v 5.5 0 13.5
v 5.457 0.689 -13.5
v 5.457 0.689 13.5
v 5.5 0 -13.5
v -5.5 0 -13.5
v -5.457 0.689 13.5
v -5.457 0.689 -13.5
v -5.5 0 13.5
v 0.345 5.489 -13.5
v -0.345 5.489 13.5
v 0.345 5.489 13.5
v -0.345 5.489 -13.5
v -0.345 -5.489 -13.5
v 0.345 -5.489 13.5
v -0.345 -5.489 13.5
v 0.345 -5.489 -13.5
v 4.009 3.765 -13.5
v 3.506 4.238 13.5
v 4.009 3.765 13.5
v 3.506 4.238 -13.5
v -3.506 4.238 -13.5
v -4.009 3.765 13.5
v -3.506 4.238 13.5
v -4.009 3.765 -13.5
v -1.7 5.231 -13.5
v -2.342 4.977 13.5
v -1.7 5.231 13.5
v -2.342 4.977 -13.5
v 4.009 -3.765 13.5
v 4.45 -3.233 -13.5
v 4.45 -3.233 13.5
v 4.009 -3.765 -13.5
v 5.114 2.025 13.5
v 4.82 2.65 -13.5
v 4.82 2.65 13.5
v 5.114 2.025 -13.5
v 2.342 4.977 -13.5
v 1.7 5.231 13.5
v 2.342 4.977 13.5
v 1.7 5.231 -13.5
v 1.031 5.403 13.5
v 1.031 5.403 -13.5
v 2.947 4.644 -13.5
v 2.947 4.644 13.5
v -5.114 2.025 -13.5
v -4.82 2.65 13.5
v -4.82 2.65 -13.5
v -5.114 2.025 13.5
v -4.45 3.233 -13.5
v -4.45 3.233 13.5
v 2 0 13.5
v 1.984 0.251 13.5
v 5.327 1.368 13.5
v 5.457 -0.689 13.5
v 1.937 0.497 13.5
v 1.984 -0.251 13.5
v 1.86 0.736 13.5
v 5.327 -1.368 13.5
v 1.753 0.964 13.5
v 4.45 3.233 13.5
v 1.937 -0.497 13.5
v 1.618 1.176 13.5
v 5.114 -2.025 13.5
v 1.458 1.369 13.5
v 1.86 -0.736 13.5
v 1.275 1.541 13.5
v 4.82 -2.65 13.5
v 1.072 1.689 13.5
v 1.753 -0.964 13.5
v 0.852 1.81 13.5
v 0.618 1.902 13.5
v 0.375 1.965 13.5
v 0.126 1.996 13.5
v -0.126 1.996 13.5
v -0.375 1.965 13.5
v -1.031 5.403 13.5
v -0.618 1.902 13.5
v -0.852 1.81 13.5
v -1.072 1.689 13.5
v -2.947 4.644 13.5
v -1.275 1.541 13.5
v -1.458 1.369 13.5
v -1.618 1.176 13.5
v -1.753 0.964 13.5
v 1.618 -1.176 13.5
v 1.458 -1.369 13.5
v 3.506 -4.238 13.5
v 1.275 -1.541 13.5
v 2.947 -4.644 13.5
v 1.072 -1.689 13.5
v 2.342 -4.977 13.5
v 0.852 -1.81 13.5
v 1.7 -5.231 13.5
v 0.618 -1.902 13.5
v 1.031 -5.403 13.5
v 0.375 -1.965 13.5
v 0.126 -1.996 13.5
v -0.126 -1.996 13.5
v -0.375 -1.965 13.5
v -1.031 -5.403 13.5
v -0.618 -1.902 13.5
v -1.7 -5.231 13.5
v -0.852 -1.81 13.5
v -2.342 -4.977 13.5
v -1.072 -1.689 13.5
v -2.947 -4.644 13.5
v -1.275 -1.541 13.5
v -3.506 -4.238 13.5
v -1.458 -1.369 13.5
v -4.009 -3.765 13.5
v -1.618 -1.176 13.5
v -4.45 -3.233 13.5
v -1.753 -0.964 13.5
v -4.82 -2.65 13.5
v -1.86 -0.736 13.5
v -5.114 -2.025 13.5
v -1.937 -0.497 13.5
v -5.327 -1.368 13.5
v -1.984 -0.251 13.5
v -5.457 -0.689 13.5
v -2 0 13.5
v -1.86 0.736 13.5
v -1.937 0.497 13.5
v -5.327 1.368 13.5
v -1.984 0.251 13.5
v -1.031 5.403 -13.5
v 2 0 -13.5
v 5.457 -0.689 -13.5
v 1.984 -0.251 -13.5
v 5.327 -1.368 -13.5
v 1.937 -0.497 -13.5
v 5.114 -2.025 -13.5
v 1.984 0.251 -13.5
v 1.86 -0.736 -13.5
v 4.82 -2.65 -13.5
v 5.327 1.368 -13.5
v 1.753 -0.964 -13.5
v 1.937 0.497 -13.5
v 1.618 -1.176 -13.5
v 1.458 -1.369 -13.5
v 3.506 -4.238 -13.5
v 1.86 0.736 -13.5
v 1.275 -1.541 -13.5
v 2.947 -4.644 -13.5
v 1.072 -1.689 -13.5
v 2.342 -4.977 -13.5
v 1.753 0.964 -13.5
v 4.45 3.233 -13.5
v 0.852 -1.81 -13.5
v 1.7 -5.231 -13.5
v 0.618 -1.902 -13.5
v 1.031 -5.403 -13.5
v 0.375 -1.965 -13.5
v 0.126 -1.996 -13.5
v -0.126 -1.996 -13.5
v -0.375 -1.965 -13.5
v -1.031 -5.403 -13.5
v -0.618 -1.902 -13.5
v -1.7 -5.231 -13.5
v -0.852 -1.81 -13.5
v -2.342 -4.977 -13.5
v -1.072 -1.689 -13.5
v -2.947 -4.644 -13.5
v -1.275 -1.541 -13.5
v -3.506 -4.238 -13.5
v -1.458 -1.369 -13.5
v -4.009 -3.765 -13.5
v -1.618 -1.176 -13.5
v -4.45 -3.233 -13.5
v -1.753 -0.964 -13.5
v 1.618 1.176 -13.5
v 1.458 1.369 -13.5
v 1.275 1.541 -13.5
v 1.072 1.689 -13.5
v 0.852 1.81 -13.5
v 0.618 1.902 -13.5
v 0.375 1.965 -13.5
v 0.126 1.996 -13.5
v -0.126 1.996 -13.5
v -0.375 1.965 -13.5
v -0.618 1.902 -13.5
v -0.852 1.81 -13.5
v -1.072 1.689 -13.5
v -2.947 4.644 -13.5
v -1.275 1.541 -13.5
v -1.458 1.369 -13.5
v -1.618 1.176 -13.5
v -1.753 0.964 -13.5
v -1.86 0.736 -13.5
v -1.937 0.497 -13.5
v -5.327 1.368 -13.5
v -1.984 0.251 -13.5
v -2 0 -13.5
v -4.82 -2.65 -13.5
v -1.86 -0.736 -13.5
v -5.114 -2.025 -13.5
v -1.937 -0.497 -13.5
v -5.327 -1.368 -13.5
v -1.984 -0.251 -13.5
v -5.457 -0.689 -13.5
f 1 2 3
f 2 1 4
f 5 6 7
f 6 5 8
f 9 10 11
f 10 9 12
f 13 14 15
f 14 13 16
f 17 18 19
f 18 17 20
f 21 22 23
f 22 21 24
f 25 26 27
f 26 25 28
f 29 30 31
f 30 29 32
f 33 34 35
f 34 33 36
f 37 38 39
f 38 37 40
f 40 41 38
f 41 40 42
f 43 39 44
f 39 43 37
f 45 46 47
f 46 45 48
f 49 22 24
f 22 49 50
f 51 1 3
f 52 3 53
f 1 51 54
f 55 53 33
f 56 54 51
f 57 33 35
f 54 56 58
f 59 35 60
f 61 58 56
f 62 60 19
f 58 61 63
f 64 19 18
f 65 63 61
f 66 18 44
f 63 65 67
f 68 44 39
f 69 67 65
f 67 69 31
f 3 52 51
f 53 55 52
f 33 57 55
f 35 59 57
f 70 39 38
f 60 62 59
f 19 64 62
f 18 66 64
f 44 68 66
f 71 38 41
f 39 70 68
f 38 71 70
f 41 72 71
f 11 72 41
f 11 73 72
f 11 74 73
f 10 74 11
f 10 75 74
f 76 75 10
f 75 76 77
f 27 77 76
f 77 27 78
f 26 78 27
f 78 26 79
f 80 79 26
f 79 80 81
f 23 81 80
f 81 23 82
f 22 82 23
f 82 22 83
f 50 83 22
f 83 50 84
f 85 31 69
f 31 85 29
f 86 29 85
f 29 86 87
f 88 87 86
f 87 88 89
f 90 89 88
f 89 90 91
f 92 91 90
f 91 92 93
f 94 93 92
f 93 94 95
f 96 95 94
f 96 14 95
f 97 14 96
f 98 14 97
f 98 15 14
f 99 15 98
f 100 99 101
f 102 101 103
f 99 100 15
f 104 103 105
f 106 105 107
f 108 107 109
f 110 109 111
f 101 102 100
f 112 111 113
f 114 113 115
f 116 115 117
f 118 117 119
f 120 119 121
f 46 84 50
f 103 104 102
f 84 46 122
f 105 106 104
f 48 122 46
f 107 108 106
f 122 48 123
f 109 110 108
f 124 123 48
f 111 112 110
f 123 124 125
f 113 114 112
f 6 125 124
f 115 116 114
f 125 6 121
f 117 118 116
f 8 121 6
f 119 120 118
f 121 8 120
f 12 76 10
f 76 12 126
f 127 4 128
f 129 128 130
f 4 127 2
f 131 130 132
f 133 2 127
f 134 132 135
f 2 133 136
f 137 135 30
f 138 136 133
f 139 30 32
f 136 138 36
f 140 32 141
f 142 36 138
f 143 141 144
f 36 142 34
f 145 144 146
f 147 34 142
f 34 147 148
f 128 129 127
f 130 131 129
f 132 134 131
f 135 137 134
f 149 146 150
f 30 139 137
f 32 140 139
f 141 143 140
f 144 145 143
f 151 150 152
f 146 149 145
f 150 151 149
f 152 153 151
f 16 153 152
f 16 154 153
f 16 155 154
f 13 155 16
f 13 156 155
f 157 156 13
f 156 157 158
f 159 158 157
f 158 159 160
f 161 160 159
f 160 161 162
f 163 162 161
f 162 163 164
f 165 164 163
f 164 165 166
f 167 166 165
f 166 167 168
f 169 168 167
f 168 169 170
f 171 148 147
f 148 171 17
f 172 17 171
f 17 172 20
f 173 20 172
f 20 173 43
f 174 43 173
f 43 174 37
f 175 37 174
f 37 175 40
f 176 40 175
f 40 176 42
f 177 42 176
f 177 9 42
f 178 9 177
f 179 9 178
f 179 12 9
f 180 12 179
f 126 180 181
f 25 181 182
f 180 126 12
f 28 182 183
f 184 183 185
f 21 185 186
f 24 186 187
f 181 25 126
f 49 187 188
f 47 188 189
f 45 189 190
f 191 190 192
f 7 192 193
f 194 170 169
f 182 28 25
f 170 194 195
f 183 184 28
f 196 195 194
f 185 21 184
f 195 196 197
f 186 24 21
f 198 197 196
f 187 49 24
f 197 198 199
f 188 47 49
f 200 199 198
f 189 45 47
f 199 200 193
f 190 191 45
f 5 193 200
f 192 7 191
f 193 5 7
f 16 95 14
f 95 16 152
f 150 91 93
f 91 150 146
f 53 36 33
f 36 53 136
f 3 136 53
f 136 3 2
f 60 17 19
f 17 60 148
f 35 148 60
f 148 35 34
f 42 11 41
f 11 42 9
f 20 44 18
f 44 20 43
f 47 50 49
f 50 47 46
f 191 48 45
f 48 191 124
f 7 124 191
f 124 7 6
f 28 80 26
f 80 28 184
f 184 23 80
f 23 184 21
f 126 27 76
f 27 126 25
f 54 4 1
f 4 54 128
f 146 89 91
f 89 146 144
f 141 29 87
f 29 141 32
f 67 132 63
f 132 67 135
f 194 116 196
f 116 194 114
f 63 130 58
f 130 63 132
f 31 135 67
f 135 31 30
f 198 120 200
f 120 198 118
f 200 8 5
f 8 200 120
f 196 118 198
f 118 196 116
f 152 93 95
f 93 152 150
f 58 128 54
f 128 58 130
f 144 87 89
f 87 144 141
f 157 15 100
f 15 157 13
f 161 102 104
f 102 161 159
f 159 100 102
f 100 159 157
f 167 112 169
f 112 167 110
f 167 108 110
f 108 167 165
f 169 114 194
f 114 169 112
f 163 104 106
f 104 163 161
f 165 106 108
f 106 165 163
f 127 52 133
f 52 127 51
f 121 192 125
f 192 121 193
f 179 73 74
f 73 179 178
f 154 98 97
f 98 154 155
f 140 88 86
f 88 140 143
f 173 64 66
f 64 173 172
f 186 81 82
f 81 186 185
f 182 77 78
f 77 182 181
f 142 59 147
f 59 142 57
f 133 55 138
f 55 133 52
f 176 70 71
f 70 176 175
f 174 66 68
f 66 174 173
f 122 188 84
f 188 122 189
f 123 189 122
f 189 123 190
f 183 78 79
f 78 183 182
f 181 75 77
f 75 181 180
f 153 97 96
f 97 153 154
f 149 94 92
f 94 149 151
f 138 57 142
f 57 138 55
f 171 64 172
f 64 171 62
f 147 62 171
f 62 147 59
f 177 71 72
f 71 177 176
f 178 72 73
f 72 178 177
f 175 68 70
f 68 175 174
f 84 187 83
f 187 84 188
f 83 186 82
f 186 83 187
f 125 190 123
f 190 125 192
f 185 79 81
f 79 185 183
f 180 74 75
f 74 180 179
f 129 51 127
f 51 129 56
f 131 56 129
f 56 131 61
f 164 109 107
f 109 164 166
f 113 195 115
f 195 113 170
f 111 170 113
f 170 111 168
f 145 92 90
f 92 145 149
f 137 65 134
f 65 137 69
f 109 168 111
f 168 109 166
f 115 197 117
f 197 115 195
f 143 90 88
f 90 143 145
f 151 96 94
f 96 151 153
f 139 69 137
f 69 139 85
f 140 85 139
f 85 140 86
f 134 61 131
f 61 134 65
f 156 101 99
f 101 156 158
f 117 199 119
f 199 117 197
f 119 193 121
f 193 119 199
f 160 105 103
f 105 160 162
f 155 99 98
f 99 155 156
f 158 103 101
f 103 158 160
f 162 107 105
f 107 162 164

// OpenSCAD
$fn = 50;


difference() {
	union() {
		translate(v = [0, 0, -13.5000000000]) {
			cylinder(h = 27, r = 5.5000000000);
		}
	}
	union() {
		translate(v = [0, 0, -100.0000000000]) {
			cylinder(h = 200, r = 2);
		}
	}
}
